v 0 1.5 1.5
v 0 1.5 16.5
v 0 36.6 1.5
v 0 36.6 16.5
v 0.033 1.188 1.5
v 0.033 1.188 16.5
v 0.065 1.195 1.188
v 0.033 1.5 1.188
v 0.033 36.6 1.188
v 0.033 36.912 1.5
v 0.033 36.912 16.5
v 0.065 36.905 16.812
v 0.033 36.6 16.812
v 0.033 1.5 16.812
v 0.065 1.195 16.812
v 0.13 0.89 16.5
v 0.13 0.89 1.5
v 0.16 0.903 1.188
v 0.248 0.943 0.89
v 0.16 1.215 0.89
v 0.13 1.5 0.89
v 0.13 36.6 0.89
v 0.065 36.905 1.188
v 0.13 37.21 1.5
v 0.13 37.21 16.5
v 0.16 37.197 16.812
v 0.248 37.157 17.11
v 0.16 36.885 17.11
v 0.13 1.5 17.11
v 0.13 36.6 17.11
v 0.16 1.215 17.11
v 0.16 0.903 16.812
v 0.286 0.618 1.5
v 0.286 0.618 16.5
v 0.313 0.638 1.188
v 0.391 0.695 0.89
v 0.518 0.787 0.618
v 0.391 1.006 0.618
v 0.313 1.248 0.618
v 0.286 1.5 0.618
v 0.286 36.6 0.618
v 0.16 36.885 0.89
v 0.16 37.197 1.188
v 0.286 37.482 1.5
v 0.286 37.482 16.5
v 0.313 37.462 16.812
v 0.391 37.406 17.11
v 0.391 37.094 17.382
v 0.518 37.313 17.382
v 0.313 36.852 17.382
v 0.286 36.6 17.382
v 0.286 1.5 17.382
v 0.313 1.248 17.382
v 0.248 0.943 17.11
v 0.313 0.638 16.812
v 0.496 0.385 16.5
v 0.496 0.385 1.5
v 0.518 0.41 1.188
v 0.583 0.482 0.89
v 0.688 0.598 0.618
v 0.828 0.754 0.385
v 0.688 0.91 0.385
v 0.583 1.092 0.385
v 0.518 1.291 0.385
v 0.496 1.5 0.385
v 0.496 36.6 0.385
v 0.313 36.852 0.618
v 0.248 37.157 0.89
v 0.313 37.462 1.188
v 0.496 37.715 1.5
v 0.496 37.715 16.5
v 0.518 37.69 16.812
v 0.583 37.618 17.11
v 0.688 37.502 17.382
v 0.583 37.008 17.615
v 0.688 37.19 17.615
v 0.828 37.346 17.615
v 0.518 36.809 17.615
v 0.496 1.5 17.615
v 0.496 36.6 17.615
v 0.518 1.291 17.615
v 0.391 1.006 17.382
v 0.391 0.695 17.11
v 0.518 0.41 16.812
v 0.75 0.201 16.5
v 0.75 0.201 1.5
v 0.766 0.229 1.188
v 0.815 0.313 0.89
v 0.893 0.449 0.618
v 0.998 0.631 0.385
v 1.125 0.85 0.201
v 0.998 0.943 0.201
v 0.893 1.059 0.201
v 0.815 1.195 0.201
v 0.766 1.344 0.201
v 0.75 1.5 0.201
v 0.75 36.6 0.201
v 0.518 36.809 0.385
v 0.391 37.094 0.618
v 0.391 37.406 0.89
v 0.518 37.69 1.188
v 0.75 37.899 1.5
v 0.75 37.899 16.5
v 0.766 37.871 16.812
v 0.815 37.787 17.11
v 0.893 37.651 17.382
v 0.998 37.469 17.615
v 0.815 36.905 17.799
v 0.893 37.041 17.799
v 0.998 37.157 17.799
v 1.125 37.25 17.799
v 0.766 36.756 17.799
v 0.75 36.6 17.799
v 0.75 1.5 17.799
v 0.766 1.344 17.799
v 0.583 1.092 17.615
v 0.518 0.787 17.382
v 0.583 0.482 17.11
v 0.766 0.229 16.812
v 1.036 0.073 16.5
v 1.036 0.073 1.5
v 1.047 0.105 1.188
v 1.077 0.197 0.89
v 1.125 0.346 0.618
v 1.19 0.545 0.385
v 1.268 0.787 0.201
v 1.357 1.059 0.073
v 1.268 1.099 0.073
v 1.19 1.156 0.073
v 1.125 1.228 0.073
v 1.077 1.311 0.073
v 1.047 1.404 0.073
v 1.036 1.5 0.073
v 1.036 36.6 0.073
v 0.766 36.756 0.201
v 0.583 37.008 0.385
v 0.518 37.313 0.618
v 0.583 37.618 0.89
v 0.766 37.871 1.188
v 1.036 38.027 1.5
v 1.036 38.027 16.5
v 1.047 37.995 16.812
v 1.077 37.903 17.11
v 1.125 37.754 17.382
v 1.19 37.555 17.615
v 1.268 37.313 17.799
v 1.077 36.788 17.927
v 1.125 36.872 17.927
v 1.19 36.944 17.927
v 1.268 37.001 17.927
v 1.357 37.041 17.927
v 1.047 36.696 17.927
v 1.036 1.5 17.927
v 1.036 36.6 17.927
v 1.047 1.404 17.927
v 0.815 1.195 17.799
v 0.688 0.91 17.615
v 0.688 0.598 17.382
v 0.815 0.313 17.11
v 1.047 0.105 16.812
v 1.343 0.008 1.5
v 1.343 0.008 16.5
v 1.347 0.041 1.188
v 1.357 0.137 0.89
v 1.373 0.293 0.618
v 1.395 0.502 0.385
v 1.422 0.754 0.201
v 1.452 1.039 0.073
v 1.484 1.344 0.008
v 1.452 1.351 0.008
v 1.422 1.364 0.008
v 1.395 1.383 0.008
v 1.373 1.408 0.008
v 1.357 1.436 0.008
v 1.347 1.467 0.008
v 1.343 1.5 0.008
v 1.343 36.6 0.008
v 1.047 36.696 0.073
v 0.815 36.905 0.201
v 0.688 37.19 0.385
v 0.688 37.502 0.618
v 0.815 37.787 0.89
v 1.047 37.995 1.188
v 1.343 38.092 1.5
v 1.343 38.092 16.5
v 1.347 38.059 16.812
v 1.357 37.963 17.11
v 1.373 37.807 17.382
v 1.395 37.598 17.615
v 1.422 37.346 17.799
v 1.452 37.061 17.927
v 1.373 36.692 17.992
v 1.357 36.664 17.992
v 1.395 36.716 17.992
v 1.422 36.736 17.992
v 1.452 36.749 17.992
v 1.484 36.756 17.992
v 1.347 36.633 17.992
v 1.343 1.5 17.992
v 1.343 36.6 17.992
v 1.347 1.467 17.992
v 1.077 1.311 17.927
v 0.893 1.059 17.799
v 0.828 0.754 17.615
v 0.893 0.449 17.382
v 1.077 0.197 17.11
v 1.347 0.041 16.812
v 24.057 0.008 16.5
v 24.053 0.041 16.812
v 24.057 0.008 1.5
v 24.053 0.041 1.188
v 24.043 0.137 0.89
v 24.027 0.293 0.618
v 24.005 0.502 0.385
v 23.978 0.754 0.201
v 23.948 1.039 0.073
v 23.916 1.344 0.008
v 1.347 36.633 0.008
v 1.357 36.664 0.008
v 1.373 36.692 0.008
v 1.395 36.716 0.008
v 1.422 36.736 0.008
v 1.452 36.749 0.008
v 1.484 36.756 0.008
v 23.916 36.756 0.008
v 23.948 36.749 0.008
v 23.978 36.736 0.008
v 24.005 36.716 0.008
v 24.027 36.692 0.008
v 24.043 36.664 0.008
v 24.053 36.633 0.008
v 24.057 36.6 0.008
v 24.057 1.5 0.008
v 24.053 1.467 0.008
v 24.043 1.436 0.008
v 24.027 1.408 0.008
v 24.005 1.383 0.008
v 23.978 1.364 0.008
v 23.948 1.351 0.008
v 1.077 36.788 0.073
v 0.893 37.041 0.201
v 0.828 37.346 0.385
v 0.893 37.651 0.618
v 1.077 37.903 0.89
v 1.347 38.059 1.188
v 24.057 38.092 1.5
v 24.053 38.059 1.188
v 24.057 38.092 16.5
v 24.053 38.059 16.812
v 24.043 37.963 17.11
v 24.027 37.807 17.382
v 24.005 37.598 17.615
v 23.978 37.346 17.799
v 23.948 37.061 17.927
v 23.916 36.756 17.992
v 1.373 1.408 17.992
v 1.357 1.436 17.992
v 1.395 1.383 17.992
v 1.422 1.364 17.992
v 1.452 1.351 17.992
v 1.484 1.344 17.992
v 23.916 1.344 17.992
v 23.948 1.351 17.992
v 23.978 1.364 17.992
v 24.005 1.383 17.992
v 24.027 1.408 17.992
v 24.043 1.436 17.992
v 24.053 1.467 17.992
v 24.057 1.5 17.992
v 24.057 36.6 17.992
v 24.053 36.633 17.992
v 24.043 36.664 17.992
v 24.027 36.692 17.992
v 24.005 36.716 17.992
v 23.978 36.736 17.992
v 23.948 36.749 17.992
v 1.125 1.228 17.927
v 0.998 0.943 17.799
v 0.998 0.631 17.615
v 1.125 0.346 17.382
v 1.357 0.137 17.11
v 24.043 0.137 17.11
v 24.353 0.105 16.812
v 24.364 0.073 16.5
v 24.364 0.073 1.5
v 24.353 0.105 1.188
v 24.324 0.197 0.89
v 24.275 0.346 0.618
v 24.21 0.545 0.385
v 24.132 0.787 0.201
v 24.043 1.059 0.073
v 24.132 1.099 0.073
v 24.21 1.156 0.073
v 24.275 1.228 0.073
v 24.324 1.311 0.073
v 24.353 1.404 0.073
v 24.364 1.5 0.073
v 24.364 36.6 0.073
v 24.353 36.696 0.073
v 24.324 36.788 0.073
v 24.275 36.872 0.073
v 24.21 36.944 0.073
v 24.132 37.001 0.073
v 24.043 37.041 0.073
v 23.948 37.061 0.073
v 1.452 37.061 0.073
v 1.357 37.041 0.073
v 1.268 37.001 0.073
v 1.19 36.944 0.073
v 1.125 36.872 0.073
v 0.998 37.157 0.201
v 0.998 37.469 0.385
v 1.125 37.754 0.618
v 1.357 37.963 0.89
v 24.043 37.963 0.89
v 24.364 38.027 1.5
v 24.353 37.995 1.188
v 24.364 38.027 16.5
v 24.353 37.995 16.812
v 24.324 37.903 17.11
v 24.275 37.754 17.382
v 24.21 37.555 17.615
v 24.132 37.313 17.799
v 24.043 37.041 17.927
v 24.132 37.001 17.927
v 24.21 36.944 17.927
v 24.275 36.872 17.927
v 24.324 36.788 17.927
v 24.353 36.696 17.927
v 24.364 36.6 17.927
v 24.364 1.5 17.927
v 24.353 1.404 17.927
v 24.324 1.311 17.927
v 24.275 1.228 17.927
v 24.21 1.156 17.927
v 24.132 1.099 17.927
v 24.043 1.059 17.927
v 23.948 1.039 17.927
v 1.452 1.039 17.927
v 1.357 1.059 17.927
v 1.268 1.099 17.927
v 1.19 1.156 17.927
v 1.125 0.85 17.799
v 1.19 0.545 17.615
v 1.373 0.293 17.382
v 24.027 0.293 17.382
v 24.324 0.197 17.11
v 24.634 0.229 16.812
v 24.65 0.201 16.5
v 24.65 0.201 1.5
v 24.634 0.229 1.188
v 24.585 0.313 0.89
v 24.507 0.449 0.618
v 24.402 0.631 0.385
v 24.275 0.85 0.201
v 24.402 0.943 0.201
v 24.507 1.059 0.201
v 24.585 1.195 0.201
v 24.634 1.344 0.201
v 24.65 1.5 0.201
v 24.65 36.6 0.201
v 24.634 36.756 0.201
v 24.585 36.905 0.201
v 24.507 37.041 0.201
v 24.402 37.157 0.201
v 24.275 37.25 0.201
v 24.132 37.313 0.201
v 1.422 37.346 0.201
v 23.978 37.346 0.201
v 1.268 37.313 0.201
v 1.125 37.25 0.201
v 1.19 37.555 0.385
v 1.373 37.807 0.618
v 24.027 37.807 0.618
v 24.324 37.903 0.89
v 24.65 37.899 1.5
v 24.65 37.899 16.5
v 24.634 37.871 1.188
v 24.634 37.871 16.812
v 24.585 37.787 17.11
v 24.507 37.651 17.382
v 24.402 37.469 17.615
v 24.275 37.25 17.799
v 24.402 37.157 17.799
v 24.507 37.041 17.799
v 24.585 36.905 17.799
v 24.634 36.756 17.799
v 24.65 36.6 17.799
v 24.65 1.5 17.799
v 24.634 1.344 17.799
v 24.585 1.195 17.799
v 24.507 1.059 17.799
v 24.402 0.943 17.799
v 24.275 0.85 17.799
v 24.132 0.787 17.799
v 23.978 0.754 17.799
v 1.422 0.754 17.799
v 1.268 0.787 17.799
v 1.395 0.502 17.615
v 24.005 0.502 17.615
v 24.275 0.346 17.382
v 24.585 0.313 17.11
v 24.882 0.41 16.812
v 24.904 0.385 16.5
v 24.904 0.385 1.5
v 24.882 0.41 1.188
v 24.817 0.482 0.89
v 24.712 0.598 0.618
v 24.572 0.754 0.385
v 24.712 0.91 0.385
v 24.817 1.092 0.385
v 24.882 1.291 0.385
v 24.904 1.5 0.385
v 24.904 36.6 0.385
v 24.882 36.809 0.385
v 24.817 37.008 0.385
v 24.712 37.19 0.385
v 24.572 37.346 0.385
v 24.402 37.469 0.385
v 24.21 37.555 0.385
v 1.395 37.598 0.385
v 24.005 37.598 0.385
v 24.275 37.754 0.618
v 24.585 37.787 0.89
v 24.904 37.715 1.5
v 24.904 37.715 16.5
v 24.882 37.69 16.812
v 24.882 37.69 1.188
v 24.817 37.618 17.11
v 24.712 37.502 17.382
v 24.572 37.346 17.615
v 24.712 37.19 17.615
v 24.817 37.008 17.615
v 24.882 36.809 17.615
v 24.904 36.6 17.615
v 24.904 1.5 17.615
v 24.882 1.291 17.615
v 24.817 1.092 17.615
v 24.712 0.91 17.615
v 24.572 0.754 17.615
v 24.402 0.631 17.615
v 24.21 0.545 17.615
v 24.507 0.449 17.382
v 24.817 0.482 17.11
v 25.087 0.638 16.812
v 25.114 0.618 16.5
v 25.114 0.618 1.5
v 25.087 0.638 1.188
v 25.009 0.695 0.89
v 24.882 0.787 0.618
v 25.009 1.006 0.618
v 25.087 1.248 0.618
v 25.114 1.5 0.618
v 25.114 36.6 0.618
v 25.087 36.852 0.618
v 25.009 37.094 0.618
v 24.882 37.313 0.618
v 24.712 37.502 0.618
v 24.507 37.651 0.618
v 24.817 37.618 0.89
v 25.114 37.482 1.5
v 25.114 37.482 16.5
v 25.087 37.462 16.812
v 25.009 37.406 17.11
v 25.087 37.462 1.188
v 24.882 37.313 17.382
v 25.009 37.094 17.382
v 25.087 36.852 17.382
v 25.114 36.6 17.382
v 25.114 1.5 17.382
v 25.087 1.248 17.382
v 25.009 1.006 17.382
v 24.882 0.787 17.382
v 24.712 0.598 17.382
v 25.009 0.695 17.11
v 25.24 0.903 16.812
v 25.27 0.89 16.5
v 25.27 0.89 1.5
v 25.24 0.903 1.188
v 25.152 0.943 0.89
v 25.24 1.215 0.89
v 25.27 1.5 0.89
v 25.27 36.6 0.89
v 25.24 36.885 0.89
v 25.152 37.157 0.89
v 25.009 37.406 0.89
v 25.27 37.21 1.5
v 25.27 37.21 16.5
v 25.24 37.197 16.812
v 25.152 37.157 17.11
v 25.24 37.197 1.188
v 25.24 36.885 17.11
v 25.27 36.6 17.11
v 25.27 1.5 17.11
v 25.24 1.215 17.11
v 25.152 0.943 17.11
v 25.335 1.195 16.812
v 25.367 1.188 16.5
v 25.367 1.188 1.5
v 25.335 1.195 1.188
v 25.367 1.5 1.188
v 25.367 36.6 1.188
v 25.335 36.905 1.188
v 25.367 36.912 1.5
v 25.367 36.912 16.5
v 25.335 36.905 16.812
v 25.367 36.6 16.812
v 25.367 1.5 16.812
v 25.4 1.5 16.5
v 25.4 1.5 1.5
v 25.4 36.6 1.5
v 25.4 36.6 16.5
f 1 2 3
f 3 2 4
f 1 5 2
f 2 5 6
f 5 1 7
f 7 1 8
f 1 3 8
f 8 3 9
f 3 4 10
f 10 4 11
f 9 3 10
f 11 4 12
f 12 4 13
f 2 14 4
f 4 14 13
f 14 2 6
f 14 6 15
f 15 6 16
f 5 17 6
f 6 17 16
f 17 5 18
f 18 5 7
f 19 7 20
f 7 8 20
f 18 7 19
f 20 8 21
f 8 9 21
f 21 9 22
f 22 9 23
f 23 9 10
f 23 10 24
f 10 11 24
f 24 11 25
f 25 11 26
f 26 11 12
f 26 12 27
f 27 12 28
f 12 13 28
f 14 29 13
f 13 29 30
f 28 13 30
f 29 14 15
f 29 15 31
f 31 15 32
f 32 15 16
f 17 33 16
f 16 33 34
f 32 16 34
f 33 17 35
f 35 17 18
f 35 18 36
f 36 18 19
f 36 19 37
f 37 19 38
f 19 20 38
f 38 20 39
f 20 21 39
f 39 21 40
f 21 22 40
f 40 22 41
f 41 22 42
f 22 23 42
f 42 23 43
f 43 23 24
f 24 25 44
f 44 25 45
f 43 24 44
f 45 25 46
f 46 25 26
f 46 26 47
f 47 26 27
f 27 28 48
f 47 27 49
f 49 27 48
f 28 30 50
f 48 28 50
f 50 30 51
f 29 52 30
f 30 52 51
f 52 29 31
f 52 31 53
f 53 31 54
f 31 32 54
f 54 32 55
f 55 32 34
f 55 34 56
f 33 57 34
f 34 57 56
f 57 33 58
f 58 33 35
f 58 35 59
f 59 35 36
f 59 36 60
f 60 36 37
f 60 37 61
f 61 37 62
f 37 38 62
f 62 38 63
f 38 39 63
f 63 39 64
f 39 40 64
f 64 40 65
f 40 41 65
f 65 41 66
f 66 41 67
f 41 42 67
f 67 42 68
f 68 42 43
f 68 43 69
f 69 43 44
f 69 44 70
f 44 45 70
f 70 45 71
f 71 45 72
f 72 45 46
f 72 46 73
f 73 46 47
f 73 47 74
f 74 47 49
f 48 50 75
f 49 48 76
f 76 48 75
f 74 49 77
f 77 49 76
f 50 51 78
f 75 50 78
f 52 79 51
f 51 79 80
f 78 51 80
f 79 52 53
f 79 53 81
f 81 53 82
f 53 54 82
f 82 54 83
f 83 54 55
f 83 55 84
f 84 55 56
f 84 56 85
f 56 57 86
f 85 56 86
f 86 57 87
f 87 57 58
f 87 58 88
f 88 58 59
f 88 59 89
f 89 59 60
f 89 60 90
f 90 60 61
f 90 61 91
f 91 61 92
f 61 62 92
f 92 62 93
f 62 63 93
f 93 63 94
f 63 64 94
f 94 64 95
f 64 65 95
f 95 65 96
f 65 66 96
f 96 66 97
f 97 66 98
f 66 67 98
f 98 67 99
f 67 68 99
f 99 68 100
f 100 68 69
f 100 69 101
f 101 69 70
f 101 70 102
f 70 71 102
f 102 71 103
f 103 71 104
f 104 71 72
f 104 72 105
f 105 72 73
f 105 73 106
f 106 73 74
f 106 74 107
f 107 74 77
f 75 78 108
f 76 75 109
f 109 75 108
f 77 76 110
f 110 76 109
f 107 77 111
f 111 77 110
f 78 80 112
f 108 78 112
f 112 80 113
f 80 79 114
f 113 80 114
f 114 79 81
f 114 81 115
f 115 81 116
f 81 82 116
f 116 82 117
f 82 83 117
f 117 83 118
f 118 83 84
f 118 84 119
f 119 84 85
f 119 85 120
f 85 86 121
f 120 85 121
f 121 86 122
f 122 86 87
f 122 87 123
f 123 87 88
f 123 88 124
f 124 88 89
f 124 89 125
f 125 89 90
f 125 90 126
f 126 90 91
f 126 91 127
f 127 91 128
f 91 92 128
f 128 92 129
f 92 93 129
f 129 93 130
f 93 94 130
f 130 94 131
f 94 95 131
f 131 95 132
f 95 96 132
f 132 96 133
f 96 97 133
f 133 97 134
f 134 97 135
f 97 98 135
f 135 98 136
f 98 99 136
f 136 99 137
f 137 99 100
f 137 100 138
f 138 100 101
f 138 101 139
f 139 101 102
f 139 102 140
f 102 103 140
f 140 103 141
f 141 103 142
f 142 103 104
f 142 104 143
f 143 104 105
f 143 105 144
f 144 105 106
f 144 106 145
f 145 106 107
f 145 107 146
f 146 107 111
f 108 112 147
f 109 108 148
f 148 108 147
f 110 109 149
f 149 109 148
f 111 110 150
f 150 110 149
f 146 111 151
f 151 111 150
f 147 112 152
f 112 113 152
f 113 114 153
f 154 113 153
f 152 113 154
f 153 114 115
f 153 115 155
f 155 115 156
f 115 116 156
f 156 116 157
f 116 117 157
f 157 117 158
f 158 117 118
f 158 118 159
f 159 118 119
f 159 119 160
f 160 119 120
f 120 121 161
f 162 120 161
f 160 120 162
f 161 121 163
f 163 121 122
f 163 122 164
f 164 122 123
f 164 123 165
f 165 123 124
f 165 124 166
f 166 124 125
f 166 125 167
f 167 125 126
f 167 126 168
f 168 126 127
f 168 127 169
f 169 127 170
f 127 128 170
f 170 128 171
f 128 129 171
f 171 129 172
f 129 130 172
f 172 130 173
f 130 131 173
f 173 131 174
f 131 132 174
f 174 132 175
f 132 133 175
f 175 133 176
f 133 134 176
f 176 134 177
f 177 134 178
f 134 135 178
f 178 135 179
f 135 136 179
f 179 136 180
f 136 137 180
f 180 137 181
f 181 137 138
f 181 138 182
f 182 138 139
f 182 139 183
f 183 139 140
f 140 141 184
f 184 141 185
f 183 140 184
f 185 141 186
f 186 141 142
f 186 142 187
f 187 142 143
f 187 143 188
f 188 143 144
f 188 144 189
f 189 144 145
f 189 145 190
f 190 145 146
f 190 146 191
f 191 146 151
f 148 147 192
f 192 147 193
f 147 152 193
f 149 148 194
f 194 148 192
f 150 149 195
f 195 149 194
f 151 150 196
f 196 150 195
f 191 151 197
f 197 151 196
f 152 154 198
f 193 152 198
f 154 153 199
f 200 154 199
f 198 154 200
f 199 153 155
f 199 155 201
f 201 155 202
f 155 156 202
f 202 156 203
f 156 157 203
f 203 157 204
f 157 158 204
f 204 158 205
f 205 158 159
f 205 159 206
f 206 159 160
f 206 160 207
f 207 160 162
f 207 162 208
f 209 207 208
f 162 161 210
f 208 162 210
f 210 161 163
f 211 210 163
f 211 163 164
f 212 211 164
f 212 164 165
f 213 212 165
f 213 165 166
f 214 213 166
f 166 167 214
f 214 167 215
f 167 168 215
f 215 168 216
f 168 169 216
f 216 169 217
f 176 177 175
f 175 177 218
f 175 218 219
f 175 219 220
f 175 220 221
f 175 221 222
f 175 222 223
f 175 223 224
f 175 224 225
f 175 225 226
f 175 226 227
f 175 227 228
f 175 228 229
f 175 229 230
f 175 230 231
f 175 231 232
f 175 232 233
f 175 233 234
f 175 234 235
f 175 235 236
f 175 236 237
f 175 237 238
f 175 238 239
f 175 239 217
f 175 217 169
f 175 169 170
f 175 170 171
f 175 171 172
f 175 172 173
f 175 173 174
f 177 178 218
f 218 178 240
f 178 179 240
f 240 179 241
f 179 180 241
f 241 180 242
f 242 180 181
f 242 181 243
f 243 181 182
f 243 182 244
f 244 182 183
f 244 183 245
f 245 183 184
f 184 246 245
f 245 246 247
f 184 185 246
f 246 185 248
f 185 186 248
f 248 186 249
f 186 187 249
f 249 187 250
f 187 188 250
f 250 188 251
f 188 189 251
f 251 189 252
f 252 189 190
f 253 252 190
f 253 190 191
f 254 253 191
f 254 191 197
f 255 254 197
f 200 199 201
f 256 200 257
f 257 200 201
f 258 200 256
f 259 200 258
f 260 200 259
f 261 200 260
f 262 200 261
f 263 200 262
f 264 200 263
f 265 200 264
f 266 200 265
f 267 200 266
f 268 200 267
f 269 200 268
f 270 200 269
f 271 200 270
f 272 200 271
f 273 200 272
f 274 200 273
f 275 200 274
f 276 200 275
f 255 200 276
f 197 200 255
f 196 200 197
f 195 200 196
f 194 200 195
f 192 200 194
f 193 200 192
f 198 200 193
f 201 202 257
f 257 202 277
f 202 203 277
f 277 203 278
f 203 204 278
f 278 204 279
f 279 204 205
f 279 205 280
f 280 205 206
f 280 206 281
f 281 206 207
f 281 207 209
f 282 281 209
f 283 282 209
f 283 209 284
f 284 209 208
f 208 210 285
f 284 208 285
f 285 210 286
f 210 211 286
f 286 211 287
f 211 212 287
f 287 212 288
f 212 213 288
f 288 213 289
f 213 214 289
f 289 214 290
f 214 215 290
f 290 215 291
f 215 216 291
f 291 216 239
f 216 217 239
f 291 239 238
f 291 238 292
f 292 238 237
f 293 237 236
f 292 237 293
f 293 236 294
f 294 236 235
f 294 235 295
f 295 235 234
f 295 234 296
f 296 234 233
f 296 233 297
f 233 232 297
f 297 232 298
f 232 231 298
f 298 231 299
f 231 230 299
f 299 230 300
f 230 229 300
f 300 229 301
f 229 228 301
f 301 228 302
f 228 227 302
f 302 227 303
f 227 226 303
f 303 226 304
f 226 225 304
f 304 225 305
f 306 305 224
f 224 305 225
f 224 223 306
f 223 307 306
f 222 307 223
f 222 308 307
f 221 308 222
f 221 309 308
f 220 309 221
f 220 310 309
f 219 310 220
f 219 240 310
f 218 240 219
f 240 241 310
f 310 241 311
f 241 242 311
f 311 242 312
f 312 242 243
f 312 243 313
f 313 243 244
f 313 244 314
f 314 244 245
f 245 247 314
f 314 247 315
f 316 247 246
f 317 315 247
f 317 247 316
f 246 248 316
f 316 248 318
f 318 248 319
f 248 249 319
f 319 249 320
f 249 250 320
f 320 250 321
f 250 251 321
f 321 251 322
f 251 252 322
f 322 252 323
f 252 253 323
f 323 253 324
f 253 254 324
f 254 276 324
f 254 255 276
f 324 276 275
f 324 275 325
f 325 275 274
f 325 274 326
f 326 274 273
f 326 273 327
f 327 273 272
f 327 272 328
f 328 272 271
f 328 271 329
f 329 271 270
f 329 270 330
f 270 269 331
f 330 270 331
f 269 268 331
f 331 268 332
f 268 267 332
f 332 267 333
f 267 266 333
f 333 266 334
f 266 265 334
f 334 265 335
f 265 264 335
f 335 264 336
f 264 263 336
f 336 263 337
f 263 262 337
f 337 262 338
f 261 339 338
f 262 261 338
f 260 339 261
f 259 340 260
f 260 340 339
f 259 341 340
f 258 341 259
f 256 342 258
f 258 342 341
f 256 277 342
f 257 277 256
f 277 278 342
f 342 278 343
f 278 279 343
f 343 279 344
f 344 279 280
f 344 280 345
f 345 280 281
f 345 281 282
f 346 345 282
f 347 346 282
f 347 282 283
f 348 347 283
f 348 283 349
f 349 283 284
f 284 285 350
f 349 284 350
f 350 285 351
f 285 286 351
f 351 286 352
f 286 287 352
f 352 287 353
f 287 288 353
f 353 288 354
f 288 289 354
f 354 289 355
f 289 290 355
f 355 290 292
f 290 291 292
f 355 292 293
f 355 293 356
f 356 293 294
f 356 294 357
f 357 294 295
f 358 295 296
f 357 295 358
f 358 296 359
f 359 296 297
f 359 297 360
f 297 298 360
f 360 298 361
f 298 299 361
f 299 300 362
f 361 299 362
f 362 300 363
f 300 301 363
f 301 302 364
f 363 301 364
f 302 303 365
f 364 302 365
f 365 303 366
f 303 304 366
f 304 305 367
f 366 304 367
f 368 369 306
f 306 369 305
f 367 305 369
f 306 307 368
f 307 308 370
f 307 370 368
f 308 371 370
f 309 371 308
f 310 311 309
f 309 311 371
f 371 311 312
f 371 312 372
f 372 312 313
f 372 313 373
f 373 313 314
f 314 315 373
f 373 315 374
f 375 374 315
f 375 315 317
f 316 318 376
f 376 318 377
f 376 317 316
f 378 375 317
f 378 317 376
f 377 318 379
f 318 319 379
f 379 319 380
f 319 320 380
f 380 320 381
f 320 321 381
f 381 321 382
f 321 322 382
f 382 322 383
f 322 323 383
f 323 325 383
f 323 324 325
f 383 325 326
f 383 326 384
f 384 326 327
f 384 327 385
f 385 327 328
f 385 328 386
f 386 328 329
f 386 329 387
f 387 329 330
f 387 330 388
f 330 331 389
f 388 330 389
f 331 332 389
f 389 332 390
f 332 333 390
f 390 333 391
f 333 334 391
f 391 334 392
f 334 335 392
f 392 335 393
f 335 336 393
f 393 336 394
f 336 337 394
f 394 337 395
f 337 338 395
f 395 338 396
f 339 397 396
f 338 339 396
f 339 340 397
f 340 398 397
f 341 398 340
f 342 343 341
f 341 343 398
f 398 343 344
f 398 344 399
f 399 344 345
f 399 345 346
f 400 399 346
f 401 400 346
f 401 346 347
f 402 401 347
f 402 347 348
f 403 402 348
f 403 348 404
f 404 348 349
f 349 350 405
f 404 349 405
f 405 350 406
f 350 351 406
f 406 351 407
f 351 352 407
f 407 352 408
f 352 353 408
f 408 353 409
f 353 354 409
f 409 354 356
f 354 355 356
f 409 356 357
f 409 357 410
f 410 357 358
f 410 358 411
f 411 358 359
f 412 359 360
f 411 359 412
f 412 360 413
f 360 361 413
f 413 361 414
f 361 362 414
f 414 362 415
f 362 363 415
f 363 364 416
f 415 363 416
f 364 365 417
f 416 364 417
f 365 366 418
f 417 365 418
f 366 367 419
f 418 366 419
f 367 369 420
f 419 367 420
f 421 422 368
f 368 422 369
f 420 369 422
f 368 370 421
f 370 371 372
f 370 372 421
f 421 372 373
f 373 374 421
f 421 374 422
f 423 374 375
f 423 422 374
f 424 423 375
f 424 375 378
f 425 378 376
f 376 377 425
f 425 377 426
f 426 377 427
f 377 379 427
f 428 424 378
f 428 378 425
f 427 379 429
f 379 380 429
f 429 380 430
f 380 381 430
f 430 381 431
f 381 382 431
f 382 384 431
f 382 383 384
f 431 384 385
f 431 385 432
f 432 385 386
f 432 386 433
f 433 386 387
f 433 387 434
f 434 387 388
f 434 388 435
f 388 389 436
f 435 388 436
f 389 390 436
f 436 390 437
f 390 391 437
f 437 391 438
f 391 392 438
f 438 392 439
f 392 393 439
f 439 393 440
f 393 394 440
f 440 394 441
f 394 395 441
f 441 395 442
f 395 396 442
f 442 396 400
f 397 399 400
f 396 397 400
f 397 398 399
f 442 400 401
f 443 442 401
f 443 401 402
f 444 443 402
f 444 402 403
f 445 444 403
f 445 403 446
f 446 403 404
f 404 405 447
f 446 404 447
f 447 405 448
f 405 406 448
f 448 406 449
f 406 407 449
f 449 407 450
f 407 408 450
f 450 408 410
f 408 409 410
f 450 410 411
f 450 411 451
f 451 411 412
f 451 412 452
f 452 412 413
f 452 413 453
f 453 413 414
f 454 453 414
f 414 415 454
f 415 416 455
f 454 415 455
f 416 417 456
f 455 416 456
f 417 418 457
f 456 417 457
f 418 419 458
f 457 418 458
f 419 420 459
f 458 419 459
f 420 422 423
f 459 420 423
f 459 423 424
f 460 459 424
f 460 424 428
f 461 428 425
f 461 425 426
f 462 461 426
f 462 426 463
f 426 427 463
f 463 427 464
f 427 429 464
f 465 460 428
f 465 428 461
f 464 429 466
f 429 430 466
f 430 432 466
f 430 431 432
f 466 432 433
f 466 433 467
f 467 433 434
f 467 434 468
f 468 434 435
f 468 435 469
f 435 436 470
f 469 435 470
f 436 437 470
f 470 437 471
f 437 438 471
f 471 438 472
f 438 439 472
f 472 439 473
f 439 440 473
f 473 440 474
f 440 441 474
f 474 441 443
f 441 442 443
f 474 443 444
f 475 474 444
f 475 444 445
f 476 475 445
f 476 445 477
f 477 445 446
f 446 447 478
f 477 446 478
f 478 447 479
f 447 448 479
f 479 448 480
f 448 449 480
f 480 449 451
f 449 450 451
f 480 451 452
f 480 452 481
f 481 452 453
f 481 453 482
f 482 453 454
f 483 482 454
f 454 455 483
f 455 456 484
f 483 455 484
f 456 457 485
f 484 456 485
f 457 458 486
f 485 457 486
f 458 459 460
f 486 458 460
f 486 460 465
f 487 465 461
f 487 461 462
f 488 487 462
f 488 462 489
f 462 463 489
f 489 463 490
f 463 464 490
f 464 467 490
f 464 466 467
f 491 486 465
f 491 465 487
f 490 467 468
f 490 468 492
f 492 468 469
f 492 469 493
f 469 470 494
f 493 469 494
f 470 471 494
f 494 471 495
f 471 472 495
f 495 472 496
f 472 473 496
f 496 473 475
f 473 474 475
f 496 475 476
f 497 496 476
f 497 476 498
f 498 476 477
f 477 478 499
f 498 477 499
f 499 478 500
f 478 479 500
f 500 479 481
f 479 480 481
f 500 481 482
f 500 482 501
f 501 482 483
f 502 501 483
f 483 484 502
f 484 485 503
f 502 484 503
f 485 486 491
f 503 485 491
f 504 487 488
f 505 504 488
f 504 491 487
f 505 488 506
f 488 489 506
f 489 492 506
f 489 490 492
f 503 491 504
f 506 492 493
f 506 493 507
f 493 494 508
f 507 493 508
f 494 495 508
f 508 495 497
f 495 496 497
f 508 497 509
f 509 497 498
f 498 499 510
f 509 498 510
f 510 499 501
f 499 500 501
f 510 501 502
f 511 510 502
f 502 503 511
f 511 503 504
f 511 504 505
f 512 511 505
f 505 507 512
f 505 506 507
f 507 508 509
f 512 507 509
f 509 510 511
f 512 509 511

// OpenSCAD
/*
	Basic mahjong block

	Created: Patrick Ma
	Date begun: 4/26/2014
	Date completed: 4/26/14

	A simple tempate for mahjong tiles.
	Global variables define the basic parameters of the block
*/

// global variables
length=38.1;
height=18.0;
width=25.4;
r_edge=1.5;


%cube(25.4); // an inch reference

translate([r_edge, r_edge, r_edge])
minkowski(){
cube([width-2*r_edge, length-2*r_edge, height-2*r_edge]);
sphere(r_edge, $fs=0.2);
}
